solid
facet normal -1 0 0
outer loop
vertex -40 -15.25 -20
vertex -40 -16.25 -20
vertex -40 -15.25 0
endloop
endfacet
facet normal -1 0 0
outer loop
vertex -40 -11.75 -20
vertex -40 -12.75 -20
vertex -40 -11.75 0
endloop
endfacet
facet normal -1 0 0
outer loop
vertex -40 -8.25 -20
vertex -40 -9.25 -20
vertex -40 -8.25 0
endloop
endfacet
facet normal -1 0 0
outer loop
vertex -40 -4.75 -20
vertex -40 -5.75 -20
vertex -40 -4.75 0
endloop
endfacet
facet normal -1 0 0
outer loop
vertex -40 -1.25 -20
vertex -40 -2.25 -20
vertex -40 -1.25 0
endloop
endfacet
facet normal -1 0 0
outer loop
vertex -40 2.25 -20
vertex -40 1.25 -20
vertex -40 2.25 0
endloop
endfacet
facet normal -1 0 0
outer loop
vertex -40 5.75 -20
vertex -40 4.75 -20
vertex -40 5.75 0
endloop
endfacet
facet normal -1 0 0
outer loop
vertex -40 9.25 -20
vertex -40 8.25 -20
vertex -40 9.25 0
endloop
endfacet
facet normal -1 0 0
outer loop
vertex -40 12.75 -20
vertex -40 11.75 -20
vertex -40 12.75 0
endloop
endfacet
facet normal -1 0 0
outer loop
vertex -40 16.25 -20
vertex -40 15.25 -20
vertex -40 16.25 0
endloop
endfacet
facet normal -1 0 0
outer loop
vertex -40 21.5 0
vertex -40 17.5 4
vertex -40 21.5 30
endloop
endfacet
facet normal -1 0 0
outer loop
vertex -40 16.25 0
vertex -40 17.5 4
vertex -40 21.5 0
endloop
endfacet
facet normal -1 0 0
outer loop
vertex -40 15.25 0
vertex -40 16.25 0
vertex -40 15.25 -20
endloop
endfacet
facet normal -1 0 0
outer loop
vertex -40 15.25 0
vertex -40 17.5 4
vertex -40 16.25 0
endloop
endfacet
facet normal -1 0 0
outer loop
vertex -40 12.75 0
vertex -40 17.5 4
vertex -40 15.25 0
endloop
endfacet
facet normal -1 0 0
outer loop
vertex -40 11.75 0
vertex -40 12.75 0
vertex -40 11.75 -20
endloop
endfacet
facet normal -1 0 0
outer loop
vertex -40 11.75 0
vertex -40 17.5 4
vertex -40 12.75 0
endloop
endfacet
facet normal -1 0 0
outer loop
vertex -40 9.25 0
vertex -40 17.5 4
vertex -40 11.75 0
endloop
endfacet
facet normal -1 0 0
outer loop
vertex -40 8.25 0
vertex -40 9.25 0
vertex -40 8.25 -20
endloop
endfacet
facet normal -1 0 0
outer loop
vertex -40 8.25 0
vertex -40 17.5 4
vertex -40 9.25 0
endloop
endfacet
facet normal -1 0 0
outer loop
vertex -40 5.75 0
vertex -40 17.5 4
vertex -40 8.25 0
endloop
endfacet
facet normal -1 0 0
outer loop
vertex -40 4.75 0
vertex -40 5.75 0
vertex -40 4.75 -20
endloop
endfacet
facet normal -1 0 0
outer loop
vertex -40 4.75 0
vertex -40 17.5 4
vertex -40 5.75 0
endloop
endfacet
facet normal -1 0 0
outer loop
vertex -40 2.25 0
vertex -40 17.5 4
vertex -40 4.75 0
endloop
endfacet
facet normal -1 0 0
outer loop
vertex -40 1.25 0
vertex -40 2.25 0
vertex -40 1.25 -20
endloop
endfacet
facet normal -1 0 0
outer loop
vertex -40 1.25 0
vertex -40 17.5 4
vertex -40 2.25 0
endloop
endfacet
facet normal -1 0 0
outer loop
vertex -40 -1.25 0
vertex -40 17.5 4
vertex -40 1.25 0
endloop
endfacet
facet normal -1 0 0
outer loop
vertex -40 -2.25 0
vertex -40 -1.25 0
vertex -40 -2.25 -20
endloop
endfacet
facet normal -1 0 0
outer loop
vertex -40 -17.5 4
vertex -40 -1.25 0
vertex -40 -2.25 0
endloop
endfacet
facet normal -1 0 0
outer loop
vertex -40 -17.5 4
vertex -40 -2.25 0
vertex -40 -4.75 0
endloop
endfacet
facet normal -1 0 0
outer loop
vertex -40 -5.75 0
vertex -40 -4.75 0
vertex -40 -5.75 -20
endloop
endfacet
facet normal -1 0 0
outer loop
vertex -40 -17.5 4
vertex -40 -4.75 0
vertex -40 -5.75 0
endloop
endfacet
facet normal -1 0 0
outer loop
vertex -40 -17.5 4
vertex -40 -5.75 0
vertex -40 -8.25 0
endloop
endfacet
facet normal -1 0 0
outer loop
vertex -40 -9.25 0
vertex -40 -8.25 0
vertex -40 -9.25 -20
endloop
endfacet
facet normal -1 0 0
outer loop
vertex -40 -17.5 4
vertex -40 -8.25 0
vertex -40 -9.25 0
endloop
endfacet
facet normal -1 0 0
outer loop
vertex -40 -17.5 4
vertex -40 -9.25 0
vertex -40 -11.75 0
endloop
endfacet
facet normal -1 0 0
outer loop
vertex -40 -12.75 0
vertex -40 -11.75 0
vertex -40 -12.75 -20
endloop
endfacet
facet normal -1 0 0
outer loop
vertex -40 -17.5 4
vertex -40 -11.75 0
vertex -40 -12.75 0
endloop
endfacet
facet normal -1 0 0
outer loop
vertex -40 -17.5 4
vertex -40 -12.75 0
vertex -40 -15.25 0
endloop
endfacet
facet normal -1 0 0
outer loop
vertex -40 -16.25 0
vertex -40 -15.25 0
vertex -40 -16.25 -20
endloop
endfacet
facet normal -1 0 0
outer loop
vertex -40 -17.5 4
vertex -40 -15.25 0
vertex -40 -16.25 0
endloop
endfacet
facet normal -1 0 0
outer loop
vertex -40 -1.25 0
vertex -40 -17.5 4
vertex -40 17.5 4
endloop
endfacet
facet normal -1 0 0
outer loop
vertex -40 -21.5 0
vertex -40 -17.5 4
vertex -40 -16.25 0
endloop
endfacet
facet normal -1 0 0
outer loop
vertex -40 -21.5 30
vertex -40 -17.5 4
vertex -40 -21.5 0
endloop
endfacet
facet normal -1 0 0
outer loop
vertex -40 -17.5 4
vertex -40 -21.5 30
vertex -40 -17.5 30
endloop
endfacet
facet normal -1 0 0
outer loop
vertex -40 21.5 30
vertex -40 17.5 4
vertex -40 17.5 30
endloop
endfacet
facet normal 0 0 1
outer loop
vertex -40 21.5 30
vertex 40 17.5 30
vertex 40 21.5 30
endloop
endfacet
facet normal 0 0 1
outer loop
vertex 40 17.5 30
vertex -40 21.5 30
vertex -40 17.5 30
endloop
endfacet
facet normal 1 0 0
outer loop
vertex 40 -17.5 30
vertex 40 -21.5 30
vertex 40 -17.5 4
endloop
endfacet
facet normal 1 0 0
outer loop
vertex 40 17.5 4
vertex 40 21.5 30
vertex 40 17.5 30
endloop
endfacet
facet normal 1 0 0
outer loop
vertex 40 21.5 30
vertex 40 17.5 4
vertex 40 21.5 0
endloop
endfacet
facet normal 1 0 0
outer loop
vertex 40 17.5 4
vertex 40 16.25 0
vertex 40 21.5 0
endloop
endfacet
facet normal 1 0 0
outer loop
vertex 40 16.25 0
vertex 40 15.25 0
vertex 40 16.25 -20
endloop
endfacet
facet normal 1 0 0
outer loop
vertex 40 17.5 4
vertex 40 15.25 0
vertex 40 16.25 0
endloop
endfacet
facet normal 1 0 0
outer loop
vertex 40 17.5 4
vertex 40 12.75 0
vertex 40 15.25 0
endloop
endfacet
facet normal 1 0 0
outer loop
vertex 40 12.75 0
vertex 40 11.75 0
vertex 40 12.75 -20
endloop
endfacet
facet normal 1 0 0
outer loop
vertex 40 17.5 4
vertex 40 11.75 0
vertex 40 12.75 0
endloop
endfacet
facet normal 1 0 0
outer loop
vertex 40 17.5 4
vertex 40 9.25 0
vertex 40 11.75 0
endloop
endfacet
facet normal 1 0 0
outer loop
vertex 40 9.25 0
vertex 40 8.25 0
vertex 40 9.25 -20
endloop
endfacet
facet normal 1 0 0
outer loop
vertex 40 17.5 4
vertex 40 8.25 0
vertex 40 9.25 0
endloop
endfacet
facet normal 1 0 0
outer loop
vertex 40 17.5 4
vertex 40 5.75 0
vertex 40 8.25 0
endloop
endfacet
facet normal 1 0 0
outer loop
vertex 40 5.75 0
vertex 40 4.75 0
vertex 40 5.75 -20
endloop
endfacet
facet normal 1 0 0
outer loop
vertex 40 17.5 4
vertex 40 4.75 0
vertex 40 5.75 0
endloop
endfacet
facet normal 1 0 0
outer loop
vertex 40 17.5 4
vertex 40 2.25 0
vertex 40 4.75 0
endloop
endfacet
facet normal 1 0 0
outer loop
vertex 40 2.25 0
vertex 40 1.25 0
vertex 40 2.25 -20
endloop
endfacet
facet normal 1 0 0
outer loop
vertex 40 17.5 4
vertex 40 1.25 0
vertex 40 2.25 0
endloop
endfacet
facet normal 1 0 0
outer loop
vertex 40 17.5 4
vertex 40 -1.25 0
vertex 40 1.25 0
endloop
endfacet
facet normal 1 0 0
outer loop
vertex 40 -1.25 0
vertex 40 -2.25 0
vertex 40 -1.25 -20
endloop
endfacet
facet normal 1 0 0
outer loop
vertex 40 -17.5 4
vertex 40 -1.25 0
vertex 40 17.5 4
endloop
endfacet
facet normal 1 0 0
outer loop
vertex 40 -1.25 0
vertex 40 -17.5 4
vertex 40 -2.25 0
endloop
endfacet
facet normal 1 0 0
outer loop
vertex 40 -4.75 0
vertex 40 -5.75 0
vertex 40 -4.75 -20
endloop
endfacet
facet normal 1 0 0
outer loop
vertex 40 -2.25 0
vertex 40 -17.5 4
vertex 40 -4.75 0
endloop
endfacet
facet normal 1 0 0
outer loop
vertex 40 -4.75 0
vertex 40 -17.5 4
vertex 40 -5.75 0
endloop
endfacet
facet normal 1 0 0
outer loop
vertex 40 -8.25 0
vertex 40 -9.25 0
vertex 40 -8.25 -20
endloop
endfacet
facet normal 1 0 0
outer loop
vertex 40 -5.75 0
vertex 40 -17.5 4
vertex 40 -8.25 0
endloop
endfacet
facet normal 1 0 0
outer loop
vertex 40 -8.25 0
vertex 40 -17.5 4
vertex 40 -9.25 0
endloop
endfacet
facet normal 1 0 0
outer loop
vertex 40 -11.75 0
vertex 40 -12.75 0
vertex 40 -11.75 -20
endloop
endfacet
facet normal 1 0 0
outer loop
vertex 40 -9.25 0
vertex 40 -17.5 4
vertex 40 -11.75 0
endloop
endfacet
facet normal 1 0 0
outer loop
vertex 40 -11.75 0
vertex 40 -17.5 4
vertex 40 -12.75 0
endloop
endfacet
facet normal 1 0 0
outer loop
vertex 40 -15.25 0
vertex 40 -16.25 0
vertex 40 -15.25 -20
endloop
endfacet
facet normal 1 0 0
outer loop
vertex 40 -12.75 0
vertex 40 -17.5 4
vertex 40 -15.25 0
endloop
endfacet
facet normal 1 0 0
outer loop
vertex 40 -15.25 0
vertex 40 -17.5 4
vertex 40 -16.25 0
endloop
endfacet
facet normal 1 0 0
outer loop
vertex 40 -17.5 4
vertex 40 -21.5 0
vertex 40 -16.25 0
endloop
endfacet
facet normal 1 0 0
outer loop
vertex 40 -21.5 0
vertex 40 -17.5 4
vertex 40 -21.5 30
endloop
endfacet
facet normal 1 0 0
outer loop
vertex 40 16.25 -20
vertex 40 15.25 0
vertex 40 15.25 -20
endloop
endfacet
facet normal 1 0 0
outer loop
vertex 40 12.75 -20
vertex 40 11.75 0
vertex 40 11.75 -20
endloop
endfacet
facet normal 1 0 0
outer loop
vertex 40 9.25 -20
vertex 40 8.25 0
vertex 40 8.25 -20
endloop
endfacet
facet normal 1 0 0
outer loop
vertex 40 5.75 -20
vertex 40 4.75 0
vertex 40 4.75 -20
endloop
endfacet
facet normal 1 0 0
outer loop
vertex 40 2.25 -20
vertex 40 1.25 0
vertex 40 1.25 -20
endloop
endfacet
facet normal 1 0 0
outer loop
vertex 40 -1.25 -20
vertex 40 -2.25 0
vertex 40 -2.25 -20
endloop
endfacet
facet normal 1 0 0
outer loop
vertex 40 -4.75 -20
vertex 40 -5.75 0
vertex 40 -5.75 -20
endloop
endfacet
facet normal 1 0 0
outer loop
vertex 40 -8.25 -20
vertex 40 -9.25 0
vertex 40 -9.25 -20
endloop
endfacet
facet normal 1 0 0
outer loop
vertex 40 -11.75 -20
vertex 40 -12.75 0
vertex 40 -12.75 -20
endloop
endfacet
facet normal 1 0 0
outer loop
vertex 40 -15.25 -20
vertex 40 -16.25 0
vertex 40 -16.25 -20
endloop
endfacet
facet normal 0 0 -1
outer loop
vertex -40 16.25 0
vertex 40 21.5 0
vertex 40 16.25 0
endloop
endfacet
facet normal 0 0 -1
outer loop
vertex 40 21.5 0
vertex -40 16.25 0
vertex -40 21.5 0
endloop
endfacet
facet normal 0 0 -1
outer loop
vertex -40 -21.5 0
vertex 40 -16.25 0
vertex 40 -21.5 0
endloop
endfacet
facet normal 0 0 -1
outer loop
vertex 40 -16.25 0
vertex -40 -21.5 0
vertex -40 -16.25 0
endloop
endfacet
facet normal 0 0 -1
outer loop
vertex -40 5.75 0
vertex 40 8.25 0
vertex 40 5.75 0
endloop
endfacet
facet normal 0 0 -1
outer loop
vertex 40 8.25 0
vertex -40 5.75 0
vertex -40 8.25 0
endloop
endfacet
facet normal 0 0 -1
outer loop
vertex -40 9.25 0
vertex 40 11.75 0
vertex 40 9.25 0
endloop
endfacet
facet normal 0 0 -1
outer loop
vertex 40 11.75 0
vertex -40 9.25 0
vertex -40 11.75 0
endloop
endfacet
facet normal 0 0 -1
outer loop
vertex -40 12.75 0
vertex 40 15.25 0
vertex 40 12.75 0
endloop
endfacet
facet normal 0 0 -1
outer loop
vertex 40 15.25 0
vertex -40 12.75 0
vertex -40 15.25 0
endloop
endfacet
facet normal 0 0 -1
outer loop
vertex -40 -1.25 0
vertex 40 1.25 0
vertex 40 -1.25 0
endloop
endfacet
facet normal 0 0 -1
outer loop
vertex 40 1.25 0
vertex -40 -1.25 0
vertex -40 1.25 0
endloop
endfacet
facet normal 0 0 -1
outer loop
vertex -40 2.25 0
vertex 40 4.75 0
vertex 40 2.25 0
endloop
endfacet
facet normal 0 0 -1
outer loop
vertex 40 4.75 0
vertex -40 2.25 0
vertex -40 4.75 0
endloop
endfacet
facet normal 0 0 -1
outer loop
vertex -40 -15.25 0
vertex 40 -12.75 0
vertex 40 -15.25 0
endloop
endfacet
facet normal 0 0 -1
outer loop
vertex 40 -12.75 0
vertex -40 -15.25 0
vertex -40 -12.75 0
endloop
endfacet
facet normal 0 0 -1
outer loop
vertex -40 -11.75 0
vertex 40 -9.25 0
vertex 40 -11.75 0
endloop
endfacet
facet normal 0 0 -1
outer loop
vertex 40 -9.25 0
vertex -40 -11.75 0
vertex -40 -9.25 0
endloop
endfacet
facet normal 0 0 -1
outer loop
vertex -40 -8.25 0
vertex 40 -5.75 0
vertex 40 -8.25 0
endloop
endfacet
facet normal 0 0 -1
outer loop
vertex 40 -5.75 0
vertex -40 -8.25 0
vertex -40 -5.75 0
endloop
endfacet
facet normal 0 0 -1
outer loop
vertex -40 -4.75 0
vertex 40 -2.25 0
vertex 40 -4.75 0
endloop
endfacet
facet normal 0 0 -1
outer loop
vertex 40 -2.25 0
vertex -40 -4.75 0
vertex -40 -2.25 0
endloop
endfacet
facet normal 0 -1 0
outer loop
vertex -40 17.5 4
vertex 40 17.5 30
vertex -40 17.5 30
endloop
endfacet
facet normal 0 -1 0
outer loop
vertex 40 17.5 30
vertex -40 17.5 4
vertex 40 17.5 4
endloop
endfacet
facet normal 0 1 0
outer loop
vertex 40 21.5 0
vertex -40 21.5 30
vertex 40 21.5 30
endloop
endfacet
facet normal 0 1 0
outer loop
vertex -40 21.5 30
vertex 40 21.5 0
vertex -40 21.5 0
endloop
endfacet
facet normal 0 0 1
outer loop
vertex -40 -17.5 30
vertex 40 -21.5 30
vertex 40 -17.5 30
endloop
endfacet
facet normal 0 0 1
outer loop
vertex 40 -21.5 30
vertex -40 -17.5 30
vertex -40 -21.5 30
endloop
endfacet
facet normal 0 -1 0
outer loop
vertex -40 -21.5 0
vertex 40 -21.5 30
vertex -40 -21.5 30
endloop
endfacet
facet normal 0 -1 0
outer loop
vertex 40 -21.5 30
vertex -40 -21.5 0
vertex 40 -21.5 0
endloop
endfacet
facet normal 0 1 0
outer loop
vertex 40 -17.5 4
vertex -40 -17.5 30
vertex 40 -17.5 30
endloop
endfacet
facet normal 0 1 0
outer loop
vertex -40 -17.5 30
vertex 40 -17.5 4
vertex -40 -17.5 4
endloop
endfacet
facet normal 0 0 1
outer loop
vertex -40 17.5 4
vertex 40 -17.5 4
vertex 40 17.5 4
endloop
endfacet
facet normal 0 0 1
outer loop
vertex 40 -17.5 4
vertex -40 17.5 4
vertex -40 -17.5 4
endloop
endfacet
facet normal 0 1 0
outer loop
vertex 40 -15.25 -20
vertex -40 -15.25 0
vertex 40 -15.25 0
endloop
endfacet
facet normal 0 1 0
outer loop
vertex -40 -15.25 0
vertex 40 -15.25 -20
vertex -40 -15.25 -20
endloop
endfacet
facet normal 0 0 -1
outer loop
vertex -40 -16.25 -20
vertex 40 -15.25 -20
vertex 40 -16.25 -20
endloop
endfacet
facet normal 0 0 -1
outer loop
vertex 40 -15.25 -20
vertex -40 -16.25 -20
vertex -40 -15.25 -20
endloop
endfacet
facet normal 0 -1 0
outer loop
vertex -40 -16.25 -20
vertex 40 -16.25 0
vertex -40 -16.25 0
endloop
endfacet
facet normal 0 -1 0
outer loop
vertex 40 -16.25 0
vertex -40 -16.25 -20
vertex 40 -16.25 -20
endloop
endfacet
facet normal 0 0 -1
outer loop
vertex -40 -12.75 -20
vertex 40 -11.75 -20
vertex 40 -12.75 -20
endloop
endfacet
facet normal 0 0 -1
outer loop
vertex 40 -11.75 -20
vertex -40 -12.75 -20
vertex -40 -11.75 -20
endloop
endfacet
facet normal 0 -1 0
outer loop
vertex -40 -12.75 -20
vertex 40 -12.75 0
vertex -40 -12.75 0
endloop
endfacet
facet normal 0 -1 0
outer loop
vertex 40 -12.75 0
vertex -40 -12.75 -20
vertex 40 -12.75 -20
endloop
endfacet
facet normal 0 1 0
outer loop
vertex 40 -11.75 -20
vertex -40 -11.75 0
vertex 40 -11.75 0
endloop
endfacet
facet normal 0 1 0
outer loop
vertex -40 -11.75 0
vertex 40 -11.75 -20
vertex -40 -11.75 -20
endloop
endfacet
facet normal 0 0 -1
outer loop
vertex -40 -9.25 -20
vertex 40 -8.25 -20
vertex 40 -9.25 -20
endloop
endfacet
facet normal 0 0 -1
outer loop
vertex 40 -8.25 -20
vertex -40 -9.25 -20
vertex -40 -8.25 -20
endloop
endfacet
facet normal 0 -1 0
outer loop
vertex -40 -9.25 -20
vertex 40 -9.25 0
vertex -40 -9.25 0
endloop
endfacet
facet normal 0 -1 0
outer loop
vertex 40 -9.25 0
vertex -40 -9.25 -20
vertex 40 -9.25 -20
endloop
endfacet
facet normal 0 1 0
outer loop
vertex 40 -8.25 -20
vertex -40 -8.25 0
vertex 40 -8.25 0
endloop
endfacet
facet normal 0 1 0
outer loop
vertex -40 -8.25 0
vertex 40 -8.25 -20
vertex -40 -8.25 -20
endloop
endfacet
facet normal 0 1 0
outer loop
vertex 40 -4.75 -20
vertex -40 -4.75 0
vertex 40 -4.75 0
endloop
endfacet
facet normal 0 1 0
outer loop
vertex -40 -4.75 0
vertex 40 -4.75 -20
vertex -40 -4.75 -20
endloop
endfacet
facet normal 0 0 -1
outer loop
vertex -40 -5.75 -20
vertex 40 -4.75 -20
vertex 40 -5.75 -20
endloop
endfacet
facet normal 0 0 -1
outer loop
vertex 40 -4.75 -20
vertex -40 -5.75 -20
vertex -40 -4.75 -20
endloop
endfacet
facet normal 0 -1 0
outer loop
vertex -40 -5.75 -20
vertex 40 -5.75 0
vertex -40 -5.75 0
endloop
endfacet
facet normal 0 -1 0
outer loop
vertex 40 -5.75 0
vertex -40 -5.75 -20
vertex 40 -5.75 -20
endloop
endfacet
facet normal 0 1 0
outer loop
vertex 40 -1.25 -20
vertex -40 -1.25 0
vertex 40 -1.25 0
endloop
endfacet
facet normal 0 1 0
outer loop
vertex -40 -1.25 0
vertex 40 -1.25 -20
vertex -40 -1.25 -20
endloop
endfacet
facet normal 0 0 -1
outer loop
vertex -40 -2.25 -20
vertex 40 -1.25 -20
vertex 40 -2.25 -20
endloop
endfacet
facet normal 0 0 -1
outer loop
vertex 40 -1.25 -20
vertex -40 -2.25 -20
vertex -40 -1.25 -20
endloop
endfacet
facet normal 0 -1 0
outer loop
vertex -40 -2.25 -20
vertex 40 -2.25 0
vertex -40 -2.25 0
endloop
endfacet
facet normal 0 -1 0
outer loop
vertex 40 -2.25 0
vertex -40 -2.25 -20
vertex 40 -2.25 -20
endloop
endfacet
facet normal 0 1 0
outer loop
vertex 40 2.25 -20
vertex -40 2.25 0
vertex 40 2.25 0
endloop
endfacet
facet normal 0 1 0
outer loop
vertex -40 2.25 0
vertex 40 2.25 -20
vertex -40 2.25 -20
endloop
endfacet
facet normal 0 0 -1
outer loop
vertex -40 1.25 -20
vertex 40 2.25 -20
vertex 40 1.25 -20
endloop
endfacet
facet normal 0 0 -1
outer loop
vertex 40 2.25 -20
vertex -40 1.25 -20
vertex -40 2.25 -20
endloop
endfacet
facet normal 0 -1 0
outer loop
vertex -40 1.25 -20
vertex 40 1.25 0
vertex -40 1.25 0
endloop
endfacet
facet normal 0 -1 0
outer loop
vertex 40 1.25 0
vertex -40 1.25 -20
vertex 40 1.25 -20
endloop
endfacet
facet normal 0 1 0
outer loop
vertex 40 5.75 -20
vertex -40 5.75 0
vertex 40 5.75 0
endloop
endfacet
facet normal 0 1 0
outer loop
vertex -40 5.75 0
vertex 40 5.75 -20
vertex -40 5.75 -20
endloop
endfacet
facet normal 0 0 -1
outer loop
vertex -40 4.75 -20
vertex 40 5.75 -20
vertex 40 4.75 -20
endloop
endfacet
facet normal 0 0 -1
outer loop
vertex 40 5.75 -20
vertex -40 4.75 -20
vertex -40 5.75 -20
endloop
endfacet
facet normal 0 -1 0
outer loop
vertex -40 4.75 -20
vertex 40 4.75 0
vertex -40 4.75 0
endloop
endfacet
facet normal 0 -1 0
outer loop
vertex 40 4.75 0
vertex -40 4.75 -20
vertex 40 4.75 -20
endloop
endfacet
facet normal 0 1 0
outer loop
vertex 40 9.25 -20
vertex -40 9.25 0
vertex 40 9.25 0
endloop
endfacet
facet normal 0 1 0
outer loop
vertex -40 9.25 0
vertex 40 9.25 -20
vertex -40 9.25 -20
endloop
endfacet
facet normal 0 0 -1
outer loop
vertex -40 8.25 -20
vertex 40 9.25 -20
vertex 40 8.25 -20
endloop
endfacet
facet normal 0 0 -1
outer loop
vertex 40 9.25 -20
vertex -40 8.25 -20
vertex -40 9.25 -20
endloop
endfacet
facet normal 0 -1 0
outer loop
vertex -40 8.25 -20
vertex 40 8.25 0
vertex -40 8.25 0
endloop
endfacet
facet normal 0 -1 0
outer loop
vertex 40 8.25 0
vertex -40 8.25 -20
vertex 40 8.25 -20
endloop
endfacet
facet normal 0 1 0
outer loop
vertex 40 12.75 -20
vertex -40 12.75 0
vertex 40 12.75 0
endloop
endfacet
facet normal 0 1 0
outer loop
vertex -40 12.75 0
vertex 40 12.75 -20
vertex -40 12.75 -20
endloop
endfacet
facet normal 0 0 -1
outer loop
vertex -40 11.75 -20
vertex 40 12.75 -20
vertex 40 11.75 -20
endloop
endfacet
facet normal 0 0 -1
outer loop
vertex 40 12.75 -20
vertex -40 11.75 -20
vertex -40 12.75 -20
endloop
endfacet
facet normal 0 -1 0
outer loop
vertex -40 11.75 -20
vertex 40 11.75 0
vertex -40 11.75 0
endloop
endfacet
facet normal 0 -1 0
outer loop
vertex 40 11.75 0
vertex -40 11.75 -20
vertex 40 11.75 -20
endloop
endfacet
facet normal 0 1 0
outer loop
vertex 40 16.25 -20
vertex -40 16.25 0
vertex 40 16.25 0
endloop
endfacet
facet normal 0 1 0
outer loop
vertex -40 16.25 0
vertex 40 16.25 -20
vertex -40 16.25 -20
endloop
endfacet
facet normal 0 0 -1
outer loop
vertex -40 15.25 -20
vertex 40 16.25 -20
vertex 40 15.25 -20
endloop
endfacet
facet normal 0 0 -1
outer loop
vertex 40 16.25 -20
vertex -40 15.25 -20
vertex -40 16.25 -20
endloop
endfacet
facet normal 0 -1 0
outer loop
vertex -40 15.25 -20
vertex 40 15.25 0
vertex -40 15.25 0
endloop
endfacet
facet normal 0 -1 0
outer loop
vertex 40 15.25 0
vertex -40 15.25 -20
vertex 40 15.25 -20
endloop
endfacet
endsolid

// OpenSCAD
// Generated by SolidPython 1.1.3 on 2022-07-07 19:04:22
$fn=200;


union() {
	translate(v = [0, 0, 15.0000000000]) {
		translate(v = [0, 19.5000000000, 0]) {
			cube(center = true, size = [80, 4, 30]);
		}
	}
	translate(v = [0, 0, 15.0000000000]) {
		translate(v = [0, -19.5000000000, 0]) {
			cube(center = true, size = [80, 4, 30]);
		}
	}
	translate(v = [0, 0, 2.0000000000]) {
		cube(center = true, size = [80, 39, 4]);
	}
	translate(v = [0, 0.0000000000, 0]) {
		translate(v = [0, 1.7500000000, 0]) {
			translate(v = [0, -17.5000000000, 0]) {
				translate(v = [0, 0, -10.0000000000]) {
					cube(center = true, size = [80, 1, 20]);
				}
			}
		}
	}
	translate(v = [0, 3.5000000000, 0]) {
		translate(v = [0, 1.7500000000, 0]) {
			translate(v = [0, -17.5000000000, 0]) {
				translate(v = [0, 0, -10.0000000000]) {
					cube(center = true, size = [80, 1, 20]);
				}
			}
		}
	}
	translate(v = [0, 7.0000000000, 0]) {
		translate(v = [0, 1.7500000000, 0]) {
			translate(v = [0, -17.5000000000, 0]) {
				translate(v = [0, 0, -10.0000000000]) {
					cube(center = true, size = [80, 1, 20]);
				}
			}
		}
	}
	translate(v = [0, 10.5000000000, 0]) {
		translate(v = [0, 1.7500000000, 0]) {
			translate(v = [0, -17.5000000000, 0]) {
				translate(v = [0, 0, -10.0000000000]) {
					cube(center = true, size = [80, 1, 20]);
				}
			}
		}
	}
	translate(v = [0, 14.0000000000, 0]) {
		translate(v = [0, 1.7500000000, 0]) {
			translate(v = [0, -17.5000000000, 0]) {
				translate(v = [0, 0, -10.0000000000]) {
					cube(center = true, size = [80, 1, 20]);
				}
			}
		}
	}
	translate(v = [0, 17.5000000000, 0]) {
		translate(v = [0, 1.7500000000, 0]) {
			translate(v = [0, -17.5000000000, 0]) {
				translate(v = [0, 0, -10.0000000000]) {
					cube(center = true, size = [80, 1, 20]);
				}
			}
		}
	}
	translate(v = [0, 21.0000000000, 0]) {
		translate(v = [0, 1.7500000000, 0]) {
			translate(v = [0, -17.5000000000, 0]) {
				translate(v = [0, 0, -10.0000000000]) {
					cube(center = true, size = [80, 1, 20]);
				}
			}
		}
	}
	translate(v = [0, 24.5000000000, 0]) {
		translate(v = [0, 1.7500000000, 0]) {
			translate(v = [0, -17.5000000000, 0]) {
				translate(v = [0, 0, -10.0000000000]) {
					cube(center = true, size = [80, 1, 20]);
				}
			}
		}
	}
	translate(v = [0, 28.0000000000, 0]) {
		translate(v = [0, 1.7500000000, 0]) {
			translate(v = [0, -17.5000000000, 0]) {
				translate(v = [0, 0, -10.0000000000]) {
					cube(center = true, size = [80, 1, 20]);
				}
			}
		}
	}
	translate(v = [0, 31.5000000000, 0]) {
		translate(v = [0, 1.7500000000, 0]) {
			translate(v = [0, -17.5000000000, 0]) {
				translate(v = [0, 0, -10.0000000000]) {
					cube(center = true, size = [80, 1, 20]);
				}
			}
		}
	}
}
/***********************************************
*********      SolidPython code:      **********
************************************************
 
from solid import *
from solid.utils import *
from math import asin, atan, pi, cos, sin, sqrt, tan, acos
import toml
import os

eps = 1  # epsilon for hollow cone artifacts

"""a nozzle on either end of a hollow cylinder to couple two hoses of different diameter"""


#OBJECT PARAMETERS#
wall_thickness = 2
def DoorSeal(
    number_fins,
    module_length,
    door_height,
    door_overlap_height,
    door_width,
    fin_thickness,
    wall_thickness,
):
    # create cube of wall thickness and door_heightxmodule_length
    outer_overlap = cube(
        [module_length, wall_thickness, door_overlap_height],center=True)
    inner_overlap = cube(
        [module_length, wall_thickness, door_overlap_height],center=True)
    #move the inner and outer away by door_width/2
    outer_overlap = translate([0,door_width/2+wall_thickness/2,0])(outer_overlap)
    inner_overlap = translate([0,-door_width/2-wall_thickness/2,0])(inner_overlap)
    # move them up to the xy plane
    outer_overlap = translate([0,0,door_overlap_height/2])(outer_overlap)
    inner_overlap = translate([0,0,door_overlap_height/2])(inner_overlap)
    # join the two cubes by a cube of module_lengthxdoor_widthxwall_thickness
    overlap = cube(
        [module_length, door_width+wall_thickness, wall_thickness],center=True)
    overlap = translate([0,0,wall_thickness/2])(overlap)

    # create a small cube inside to allow modules to be connected
    coupler = cube(
        [module_length, wall_thickness,door_overlap_height],center=True)
    # move the coupler to the xy plane
    coupler = translate([0,0,door_overlap_height/2])(coupler)
    # move coupler module_length/4 along x axis
    coupler = translate([module_length/2,0,0])(coupler)
    # set one on either end
    outer_coupler = translate([0,door_width/2 + 1.5*wall_thickness,0])(coupler)
    inner_coupler = translate([0,-door_width/2 - 1.5*wall_thickness,0])(coupler)


    # create the fins
    fin = cube(
        [module_length, fin_thickness, door_height],center=True)
        # move fin to under the xy plane
    fin = translate([0,0,-door_height/2])(fin)
    # move fins back by door_width/2
    fin = translate([0,-door_width/2,0])(fin)
    fins = []
    # we are going to place the fins evenly along the y axis which is door_width/number_fins
    fin_spacing = door_width / number_fins
    # center fin given the fin_spacing
    fin = translate([0,fin_spacing/2,0])(fin)
    for i in range(number_fins):
        cur_fin = translate([0,i*fin_spacing,0])(fin)
        fins.append(cur_fin)

    door_seal = outer_overlap + inner_overlap + overlap + outer_coupler + inner_coupler
    for fin in fins:
        door_seal += fin
    # also create door_seal_end without coupler
    door_seal_end = outer_overlap + inner_overlap + overlap
    for fin in fins:
        door_seal_end += fin


    return door_seal, door_seal_end


def render_object(render_object, filename):
    """
    creates a .stl and .scad solution for the given solidpython OpenSCAD object
    PARAMETERS:
        render_object: the OpenSCAD object
        filename: a string for the file to be saved
    """
    scad_render_to_file(render_object, filename + ".scad", file_header="$fn=200;")
    # render with OpenSCAD
    print("Openscad is now rendering the solution..")
    os.system("openscad -o " + filename + ".stl " + filename + ".scad &")


if __name__ == "__main__":
    config = toml.load("configuration.toml")
    door_seal, door_seal_end = DoorSeal(**config)
    render_object(door_seal, "door_seal")
    render_object(door_seal_end, "door_seal_end")
 
 
************************************************/
